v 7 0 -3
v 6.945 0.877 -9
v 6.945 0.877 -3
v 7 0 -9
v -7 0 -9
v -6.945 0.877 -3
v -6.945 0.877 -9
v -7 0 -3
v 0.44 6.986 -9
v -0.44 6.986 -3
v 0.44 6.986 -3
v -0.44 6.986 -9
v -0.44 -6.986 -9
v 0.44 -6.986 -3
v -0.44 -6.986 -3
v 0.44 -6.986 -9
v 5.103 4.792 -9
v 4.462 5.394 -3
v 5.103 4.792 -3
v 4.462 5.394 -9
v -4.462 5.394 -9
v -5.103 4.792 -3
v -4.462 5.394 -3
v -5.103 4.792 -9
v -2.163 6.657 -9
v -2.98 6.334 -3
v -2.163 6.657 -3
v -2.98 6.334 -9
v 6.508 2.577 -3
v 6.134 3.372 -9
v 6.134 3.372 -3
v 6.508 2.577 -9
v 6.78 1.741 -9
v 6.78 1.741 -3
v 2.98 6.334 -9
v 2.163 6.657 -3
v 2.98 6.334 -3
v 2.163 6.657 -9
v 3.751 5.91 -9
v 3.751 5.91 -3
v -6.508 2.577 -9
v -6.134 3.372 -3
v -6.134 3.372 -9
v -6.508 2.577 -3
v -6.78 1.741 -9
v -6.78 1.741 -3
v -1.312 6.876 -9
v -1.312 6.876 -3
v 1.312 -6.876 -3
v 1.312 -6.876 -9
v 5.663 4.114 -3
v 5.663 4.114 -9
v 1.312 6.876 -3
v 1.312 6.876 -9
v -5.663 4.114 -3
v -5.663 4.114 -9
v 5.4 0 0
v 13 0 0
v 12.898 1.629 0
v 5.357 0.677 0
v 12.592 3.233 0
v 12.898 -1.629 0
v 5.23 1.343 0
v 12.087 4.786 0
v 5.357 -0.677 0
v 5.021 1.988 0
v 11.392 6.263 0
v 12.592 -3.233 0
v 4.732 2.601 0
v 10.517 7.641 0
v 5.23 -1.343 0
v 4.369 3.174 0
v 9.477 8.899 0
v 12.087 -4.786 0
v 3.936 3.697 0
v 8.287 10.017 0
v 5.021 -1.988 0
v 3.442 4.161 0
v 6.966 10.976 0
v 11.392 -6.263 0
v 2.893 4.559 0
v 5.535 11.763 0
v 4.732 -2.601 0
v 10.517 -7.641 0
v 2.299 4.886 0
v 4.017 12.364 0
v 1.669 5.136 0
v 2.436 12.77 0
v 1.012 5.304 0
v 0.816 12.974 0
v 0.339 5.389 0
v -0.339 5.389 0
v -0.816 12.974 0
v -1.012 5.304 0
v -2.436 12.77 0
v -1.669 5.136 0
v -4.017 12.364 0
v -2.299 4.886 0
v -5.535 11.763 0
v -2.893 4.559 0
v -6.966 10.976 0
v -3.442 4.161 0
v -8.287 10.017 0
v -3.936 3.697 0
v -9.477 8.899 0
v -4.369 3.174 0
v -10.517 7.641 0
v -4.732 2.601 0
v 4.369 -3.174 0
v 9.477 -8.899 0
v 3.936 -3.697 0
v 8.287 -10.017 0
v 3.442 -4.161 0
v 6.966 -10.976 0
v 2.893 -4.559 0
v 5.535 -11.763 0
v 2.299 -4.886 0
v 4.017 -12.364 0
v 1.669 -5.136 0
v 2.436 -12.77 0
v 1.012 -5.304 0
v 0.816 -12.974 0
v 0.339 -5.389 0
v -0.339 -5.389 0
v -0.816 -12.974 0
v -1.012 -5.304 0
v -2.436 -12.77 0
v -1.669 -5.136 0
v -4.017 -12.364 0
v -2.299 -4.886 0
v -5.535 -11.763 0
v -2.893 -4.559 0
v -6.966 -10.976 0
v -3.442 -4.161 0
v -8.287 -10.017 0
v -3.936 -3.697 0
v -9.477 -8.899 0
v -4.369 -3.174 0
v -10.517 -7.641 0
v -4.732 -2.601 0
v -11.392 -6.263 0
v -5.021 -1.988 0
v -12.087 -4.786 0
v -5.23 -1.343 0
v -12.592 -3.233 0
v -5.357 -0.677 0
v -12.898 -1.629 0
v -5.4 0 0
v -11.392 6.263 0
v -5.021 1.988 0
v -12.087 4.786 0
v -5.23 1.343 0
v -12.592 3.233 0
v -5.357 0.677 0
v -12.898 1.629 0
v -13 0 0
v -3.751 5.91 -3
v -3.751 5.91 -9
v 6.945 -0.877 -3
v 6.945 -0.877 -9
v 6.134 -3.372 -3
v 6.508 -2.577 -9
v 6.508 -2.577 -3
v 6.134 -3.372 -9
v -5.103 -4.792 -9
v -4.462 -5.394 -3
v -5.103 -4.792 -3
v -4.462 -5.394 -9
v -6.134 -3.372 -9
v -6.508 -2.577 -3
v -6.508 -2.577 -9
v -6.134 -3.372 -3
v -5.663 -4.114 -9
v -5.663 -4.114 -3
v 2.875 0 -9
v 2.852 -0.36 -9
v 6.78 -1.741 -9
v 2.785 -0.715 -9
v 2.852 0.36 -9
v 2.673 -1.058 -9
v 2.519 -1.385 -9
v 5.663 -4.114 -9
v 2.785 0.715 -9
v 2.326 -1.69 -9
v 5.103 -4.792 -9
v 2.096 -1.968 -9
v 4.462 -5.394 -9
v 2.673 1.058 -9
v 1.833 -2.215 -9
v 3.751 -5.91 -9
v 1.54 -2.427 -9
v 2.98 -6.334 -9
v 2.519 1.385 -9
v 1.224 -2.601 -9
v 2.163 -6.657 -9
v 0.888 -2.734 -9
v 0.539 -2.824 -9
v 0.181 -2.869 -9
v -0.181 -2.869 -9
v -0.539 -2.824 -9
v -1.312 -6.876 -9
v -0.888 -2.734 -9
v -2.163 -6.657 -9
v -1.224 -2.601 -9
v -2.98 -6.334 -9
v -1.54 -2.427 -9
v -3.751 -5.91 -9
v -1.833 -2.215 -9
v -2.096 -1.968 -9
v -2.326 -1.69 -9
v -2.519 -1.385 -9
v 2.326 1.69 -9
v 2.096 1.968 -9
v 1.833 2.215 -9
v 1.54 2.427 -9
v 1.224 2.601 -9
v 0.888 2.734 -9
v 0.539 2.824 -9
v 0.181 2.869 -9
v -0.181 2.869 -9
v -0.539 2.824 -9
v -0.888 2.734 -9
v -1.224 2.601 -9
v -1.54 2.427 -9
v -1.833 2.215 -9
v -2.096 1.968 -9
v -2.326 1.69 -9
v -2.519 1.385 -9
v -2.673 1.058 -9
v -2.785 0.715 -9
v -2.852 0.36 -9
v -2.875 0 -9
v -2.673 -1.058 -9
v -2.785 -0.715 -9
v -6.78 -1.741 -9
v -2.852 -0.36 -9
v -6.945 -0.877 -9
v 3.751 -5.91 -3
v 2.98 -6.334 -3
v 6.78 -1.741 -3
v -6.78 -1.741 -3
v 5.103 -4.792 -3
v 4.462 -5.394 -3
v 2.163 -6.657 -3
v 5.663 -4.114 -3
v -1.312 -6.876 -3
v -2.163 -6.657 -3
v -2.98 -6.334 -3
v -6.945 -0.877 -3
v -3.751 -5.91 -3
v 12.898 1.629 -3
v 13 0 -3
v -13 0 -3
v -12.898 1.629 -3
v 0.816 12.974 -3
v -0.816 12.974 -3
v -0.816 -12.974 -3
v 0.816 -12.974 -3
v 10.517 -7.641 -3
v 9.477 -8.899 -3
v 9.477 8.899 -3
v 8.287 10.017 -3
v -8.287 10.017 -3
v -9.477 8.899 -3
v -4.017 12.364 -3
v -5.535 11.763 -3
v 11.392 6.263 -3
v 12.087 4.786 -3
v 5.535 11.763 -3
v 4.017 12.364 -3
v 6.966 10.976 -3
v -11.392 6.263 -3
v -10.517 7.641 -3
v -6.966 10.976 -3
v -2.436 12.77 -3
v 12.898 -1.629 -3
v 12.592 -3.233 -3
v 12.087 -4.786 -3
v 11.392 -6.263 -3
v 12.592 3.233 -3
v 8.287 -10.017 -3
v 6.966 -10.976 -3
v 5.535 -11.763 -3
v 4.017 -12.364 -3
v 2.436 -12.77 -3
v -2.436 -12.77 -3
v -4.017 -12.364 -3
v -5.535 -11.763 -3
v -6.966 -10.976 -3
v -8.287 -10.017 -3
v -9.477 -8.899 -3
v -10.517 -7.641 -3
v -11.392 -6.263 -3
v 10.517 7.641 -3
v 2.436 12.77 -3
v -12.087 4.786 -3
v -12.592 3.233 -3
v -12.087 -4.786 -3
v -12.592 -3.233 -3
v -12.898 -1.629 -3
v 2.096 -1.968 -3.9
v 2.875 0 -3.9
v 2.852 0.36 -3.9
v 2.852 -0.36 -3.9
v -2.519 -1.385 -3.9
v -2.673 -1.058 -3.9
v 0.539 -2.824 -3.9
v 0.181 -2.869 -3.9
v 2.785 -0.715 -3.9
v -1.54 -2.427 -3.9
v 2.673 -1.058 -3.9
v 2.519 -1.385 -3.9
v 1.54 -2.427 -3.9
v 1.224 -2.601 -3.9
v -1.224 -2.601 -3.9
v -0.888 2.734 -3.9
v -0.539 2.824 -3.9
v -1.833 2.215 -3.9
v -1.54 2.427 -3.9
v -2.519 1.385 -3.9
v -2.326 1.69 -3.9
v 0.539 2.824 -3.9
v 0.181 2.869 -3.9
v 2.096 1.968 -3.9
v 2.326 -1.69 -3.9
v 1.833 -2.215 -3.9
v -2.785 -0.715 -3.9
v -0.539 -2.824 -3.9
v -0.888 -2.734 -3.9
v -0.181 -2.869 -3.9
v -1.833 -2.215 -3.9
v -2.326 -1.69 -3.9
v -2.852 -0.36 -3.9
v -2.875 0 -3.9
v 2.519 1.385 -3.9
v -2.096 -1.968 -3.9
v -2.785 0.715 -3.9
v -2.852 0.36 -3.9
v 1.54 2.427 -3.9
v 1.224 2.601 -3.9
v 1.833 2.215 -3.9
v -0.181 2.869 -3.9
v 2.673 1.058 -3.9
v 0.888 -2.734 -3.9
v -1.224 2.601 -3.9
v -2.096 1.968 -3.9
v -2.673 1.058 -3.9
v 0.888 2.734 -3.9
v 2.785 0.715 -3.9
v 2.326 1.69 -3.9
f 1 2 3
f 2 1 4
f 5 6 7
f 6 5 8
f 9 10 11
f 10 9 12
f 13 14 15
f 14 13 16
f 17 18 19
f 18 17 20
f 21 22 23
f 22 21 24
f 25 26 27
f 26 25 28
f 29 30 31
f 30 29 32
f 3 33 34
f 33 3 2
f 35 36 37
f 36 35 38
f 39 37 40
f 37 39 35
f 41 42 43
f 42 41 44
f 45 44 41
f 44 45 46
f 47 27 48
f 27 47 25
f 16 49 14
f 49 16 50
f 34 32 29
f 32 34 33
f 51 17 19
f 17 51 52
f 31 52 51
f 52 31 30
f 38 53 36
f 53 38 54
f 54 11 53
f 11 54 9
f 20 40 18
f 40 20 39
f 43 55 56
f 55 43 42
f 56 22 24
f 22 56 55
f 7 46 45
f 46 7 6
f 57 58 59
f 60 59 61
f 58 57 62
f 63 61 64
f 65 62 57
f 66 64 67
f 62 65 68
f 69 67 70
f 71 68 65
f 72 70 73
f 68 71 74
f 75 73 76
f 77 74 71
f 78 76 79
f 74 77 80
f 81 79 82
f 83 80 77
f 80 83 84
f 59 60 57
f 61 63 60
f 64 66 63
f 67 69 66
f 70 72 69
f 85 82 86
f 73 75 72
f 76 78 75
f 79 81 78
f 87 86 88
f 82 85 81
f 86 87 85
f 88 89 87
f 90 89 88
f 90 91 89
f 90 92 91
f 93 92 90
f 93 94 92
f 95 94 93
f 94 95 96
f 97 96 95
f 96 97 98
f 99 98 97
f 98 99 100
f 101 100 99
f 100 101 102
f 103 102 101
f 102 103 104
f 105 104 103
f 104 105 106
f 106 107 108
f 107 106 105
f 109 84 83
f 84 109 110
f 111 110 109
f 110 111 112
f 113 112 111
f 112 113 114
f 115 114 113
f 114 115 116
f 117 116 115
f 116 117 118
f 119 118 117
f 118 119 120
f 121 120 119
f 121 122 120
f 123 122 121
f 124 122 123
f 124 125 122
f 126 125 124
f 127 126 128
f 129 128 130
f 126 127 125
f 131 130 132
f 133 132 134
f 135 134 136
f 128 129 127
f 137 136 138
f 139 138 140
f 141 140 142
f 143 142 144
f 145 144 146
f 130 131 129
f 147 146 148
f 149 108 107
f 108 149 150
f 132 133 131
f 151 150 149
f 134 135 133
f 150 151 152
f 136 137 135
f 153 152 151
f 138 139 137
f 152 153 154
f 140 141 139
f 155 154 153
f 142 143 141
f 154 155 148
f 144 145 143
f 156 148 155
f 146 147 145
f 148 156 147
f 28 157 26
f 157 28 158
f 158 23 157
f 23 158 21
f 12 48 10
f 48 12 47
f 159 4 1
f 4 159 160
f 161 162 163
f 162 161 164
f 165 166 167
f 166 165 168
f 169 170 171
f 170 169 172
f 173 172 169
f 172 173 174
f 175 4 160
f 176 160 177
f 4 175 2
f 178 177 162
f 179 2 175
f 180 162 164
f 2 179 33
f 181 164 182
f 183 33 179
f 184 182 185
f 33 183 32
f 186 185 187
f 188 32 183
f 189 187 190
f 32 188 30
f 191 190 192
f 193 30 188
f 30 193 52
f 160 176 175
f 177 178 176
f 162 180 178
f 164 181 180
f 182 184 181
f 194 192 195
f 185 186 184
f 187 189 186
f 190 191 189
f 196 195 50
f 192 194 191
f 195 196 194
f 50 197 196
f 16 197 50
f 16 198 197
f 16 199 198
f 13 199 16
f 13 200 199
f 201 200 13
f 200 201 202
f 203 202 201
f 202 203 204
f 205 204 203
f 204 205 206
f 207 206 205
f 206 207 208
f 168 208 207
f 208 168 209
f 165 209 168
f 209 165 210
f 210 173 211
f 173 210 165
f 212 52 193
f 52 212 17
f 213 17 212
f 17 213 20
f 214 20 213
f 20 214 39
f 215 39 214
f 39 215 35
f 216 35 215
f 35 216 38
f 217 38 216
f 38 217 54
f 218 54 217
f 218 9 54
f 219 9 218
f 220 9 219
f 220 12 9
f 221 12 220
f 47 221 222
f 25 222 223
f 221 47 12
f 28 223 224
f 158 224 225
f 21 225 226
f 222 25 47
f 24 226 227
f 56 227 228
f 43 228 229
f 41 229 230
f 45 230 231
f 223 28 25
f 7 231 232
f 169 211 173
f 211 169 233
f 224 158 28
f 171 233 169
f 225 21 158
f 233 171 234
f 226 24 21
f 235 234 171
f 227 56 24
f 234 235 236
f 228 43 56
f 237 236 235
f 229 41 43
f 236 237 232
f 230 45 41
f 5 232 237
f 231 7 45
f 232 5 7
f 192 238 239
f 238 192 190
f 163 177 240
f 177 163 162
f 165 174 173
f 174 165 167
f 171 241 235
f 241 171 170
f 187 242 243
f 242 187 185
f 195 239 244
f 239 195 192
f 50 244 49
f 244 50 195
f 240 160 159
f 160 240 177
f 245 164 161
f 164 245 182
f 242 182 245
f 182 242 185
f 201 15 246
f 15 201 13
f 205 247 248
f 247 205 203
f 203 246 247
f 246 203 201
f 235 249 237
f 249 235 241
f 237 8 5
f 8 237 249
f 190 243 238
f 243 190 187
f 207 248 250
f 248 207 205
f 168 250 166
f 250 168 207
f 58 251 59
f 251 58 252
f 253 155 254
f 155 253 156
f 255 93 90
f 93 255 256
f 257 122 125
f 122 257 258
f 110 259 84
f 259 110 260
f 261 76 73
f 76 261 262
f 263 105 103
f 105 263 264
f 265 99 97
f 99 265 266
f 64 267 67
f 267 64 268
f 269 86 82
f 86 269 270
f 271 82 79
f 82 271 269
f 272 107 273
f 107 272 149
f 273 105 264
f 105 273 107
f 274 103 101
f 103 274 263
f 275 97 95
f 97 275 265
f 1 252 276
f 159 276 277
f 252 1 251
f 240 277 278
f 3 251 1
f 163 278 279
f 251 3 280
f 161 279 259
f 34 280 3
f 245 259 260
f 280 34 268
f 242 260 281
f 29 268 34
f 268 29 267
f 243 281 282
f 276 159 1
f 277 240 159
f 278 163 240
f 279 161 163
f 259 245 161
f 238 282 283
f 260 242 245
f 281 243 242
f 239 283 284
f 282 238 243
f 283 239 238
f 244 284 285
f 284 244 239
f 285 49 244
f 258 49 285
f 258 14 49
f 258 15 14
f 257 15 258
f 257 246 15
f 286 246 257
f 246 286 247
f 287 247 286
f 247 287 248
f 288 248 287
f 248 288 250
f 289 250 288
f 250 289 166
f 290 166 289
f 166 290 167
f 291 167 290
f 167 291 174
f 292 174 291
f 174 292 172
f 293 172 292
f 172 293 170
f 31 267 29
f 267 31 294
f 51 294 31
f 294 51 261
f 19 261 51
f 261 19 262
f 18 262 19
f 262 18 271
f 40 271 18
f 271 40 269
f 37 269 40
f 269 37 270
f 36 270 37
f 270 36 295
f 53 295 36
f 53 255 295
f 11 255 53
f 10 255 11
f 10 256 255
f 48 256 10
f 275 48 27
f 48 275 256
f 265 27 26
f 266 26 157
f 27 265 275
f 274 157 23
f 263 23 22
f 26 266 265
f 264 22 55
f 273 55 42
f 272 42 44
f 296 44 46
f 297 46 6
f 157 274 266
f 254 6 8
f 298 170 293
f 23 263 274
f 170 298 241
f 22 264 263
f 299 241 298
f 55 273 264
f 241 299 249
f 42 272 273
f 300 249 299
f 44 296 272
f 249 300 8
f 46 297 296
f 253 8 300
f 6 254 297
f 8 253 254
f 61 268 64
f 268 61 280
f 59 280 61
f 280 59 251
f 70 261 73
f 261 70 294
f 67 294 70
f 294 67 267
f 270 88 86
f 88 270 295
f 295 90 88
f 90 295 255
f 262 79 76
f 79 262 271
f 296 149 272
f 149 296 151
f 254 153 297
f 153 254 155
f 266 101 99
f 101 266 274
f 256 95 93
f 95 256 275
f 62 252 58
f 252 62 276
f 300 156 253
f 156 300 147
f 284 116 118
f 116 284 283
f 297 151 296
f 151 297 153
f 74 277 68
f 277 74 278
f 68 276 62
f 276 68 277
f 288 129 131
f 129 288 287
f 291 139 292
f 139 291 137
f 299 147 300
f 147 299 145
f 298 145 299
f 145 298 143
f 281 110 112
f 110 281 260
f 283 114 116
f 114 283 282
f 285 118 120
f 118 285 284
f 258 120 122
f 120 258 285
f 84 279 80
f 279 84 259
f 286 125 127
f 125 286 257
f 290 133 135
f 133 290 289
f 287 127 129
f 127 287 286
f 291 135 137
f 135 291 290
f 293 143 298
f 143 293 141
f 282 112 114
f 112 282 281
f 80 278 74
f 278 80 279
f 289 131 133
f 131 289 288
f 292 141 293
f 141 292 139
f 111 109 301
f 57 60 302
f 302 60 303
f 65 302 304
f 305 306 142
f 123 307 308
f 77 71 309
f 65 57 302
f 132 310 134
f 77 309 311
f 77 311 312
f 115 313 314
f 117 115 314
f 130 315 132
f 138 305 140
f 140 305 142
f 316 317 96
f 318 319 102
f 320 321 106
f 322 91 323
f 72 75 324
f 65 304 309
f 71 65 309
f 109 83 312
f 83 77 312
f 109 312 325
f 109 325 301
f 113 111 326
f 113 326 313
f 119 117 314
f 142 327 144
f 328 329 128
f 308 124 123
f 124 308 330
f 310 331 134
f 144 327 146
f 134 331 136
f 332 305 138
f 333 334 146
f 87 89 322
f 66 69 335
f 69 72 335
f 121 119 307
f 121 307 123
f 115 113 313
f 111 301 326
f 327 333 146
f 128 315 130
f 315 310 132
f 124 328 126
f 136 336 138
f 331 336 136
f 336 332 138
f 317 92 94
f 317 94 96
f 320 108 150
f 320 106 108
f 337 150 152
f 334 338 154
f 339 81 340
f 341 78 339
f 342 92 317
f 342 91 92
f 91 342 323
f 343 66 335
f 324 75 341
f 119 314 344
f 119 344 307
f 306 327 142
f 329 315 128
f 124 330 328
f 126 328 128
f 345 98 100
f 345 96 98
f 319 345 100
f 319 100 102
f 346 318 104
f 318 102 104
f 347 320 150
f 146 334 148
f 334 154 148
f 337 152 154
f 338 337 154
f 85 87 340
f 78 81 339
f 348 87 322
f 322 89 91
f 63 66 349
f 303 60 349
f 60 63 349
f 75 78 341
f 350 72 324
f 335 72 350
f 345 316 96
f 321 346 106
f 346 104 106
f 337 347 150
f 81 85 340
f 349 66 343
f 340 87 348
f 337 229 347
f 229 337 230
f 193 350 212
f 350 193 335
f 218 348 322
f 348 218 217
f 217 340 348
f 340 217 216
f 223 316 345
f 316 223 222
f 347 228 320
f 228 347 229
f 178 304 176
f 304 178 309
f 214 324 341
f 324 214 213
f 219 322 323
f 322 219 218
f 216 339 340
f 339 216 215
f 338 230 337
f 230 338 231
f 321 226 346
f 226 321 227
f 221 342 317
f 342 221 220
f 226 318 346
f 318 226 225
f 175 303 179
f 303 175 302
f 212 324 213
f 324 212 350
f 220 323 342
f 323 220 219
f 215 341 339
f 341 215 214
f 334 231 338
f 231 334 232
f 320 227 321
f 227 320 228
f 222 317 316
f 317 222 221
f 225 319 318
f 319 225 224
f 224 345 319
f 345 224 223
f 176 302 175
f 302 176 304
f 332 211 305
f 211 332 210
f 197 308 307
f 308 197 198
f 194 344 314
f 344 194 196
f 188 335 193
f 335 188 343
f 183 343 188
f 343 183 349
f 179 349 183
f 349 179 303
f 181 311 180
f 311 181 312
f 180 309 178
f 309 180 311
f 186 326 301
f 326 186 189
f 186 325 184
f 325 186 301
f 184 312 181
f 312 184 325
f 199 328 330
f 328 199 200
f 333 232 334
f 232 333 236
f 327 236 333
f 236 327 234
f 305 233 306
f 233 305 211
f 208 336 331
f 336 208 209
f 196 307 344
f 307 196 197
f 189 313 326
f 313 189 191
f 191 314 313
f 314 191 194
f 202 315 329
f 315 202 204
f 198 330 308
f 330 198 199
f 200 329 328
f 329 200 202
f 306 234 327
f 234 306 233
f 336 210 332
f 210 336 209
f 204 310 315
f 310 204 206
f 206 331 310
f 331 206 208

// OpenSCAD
$fn = 50;


difference() {
	union() {
		translate(v = [0, 0, -9.0000000000]) {
			cylinder(h = 9, r = 7.0000000000);
		}
		translate(v = [0, 0, -3.0000000000]) {
			cylinder(h = 3, r = 13.0000000000);
		}
	}
	union() {
		translate(v = [0, 0, 0]) {
			rotate(a = [0, 0, 0]) {
				difference() {
					union() {
						#translate(v = [0, 0, -9.0000000000]) {
							cylinder(h = 9, r = 2.6000000000);
						}
						#translate(v = [0, 0, -3.9000000000]) {
							cylinder(h = 3.9000000000, r1 = 2.8750000000, r2 = 5.4000000000);
						}
						#translate(v = [0, 0, -9.0000000000]) {
							cylinder(h = 9, r = 2.8750000000);
						}
						#translate(v = [0, 0, -9.0000000000]) {
							cylinder(h = 9, r = 2.6000000000);
						}
					}
					union();
				}
			}
		}
	}
}
